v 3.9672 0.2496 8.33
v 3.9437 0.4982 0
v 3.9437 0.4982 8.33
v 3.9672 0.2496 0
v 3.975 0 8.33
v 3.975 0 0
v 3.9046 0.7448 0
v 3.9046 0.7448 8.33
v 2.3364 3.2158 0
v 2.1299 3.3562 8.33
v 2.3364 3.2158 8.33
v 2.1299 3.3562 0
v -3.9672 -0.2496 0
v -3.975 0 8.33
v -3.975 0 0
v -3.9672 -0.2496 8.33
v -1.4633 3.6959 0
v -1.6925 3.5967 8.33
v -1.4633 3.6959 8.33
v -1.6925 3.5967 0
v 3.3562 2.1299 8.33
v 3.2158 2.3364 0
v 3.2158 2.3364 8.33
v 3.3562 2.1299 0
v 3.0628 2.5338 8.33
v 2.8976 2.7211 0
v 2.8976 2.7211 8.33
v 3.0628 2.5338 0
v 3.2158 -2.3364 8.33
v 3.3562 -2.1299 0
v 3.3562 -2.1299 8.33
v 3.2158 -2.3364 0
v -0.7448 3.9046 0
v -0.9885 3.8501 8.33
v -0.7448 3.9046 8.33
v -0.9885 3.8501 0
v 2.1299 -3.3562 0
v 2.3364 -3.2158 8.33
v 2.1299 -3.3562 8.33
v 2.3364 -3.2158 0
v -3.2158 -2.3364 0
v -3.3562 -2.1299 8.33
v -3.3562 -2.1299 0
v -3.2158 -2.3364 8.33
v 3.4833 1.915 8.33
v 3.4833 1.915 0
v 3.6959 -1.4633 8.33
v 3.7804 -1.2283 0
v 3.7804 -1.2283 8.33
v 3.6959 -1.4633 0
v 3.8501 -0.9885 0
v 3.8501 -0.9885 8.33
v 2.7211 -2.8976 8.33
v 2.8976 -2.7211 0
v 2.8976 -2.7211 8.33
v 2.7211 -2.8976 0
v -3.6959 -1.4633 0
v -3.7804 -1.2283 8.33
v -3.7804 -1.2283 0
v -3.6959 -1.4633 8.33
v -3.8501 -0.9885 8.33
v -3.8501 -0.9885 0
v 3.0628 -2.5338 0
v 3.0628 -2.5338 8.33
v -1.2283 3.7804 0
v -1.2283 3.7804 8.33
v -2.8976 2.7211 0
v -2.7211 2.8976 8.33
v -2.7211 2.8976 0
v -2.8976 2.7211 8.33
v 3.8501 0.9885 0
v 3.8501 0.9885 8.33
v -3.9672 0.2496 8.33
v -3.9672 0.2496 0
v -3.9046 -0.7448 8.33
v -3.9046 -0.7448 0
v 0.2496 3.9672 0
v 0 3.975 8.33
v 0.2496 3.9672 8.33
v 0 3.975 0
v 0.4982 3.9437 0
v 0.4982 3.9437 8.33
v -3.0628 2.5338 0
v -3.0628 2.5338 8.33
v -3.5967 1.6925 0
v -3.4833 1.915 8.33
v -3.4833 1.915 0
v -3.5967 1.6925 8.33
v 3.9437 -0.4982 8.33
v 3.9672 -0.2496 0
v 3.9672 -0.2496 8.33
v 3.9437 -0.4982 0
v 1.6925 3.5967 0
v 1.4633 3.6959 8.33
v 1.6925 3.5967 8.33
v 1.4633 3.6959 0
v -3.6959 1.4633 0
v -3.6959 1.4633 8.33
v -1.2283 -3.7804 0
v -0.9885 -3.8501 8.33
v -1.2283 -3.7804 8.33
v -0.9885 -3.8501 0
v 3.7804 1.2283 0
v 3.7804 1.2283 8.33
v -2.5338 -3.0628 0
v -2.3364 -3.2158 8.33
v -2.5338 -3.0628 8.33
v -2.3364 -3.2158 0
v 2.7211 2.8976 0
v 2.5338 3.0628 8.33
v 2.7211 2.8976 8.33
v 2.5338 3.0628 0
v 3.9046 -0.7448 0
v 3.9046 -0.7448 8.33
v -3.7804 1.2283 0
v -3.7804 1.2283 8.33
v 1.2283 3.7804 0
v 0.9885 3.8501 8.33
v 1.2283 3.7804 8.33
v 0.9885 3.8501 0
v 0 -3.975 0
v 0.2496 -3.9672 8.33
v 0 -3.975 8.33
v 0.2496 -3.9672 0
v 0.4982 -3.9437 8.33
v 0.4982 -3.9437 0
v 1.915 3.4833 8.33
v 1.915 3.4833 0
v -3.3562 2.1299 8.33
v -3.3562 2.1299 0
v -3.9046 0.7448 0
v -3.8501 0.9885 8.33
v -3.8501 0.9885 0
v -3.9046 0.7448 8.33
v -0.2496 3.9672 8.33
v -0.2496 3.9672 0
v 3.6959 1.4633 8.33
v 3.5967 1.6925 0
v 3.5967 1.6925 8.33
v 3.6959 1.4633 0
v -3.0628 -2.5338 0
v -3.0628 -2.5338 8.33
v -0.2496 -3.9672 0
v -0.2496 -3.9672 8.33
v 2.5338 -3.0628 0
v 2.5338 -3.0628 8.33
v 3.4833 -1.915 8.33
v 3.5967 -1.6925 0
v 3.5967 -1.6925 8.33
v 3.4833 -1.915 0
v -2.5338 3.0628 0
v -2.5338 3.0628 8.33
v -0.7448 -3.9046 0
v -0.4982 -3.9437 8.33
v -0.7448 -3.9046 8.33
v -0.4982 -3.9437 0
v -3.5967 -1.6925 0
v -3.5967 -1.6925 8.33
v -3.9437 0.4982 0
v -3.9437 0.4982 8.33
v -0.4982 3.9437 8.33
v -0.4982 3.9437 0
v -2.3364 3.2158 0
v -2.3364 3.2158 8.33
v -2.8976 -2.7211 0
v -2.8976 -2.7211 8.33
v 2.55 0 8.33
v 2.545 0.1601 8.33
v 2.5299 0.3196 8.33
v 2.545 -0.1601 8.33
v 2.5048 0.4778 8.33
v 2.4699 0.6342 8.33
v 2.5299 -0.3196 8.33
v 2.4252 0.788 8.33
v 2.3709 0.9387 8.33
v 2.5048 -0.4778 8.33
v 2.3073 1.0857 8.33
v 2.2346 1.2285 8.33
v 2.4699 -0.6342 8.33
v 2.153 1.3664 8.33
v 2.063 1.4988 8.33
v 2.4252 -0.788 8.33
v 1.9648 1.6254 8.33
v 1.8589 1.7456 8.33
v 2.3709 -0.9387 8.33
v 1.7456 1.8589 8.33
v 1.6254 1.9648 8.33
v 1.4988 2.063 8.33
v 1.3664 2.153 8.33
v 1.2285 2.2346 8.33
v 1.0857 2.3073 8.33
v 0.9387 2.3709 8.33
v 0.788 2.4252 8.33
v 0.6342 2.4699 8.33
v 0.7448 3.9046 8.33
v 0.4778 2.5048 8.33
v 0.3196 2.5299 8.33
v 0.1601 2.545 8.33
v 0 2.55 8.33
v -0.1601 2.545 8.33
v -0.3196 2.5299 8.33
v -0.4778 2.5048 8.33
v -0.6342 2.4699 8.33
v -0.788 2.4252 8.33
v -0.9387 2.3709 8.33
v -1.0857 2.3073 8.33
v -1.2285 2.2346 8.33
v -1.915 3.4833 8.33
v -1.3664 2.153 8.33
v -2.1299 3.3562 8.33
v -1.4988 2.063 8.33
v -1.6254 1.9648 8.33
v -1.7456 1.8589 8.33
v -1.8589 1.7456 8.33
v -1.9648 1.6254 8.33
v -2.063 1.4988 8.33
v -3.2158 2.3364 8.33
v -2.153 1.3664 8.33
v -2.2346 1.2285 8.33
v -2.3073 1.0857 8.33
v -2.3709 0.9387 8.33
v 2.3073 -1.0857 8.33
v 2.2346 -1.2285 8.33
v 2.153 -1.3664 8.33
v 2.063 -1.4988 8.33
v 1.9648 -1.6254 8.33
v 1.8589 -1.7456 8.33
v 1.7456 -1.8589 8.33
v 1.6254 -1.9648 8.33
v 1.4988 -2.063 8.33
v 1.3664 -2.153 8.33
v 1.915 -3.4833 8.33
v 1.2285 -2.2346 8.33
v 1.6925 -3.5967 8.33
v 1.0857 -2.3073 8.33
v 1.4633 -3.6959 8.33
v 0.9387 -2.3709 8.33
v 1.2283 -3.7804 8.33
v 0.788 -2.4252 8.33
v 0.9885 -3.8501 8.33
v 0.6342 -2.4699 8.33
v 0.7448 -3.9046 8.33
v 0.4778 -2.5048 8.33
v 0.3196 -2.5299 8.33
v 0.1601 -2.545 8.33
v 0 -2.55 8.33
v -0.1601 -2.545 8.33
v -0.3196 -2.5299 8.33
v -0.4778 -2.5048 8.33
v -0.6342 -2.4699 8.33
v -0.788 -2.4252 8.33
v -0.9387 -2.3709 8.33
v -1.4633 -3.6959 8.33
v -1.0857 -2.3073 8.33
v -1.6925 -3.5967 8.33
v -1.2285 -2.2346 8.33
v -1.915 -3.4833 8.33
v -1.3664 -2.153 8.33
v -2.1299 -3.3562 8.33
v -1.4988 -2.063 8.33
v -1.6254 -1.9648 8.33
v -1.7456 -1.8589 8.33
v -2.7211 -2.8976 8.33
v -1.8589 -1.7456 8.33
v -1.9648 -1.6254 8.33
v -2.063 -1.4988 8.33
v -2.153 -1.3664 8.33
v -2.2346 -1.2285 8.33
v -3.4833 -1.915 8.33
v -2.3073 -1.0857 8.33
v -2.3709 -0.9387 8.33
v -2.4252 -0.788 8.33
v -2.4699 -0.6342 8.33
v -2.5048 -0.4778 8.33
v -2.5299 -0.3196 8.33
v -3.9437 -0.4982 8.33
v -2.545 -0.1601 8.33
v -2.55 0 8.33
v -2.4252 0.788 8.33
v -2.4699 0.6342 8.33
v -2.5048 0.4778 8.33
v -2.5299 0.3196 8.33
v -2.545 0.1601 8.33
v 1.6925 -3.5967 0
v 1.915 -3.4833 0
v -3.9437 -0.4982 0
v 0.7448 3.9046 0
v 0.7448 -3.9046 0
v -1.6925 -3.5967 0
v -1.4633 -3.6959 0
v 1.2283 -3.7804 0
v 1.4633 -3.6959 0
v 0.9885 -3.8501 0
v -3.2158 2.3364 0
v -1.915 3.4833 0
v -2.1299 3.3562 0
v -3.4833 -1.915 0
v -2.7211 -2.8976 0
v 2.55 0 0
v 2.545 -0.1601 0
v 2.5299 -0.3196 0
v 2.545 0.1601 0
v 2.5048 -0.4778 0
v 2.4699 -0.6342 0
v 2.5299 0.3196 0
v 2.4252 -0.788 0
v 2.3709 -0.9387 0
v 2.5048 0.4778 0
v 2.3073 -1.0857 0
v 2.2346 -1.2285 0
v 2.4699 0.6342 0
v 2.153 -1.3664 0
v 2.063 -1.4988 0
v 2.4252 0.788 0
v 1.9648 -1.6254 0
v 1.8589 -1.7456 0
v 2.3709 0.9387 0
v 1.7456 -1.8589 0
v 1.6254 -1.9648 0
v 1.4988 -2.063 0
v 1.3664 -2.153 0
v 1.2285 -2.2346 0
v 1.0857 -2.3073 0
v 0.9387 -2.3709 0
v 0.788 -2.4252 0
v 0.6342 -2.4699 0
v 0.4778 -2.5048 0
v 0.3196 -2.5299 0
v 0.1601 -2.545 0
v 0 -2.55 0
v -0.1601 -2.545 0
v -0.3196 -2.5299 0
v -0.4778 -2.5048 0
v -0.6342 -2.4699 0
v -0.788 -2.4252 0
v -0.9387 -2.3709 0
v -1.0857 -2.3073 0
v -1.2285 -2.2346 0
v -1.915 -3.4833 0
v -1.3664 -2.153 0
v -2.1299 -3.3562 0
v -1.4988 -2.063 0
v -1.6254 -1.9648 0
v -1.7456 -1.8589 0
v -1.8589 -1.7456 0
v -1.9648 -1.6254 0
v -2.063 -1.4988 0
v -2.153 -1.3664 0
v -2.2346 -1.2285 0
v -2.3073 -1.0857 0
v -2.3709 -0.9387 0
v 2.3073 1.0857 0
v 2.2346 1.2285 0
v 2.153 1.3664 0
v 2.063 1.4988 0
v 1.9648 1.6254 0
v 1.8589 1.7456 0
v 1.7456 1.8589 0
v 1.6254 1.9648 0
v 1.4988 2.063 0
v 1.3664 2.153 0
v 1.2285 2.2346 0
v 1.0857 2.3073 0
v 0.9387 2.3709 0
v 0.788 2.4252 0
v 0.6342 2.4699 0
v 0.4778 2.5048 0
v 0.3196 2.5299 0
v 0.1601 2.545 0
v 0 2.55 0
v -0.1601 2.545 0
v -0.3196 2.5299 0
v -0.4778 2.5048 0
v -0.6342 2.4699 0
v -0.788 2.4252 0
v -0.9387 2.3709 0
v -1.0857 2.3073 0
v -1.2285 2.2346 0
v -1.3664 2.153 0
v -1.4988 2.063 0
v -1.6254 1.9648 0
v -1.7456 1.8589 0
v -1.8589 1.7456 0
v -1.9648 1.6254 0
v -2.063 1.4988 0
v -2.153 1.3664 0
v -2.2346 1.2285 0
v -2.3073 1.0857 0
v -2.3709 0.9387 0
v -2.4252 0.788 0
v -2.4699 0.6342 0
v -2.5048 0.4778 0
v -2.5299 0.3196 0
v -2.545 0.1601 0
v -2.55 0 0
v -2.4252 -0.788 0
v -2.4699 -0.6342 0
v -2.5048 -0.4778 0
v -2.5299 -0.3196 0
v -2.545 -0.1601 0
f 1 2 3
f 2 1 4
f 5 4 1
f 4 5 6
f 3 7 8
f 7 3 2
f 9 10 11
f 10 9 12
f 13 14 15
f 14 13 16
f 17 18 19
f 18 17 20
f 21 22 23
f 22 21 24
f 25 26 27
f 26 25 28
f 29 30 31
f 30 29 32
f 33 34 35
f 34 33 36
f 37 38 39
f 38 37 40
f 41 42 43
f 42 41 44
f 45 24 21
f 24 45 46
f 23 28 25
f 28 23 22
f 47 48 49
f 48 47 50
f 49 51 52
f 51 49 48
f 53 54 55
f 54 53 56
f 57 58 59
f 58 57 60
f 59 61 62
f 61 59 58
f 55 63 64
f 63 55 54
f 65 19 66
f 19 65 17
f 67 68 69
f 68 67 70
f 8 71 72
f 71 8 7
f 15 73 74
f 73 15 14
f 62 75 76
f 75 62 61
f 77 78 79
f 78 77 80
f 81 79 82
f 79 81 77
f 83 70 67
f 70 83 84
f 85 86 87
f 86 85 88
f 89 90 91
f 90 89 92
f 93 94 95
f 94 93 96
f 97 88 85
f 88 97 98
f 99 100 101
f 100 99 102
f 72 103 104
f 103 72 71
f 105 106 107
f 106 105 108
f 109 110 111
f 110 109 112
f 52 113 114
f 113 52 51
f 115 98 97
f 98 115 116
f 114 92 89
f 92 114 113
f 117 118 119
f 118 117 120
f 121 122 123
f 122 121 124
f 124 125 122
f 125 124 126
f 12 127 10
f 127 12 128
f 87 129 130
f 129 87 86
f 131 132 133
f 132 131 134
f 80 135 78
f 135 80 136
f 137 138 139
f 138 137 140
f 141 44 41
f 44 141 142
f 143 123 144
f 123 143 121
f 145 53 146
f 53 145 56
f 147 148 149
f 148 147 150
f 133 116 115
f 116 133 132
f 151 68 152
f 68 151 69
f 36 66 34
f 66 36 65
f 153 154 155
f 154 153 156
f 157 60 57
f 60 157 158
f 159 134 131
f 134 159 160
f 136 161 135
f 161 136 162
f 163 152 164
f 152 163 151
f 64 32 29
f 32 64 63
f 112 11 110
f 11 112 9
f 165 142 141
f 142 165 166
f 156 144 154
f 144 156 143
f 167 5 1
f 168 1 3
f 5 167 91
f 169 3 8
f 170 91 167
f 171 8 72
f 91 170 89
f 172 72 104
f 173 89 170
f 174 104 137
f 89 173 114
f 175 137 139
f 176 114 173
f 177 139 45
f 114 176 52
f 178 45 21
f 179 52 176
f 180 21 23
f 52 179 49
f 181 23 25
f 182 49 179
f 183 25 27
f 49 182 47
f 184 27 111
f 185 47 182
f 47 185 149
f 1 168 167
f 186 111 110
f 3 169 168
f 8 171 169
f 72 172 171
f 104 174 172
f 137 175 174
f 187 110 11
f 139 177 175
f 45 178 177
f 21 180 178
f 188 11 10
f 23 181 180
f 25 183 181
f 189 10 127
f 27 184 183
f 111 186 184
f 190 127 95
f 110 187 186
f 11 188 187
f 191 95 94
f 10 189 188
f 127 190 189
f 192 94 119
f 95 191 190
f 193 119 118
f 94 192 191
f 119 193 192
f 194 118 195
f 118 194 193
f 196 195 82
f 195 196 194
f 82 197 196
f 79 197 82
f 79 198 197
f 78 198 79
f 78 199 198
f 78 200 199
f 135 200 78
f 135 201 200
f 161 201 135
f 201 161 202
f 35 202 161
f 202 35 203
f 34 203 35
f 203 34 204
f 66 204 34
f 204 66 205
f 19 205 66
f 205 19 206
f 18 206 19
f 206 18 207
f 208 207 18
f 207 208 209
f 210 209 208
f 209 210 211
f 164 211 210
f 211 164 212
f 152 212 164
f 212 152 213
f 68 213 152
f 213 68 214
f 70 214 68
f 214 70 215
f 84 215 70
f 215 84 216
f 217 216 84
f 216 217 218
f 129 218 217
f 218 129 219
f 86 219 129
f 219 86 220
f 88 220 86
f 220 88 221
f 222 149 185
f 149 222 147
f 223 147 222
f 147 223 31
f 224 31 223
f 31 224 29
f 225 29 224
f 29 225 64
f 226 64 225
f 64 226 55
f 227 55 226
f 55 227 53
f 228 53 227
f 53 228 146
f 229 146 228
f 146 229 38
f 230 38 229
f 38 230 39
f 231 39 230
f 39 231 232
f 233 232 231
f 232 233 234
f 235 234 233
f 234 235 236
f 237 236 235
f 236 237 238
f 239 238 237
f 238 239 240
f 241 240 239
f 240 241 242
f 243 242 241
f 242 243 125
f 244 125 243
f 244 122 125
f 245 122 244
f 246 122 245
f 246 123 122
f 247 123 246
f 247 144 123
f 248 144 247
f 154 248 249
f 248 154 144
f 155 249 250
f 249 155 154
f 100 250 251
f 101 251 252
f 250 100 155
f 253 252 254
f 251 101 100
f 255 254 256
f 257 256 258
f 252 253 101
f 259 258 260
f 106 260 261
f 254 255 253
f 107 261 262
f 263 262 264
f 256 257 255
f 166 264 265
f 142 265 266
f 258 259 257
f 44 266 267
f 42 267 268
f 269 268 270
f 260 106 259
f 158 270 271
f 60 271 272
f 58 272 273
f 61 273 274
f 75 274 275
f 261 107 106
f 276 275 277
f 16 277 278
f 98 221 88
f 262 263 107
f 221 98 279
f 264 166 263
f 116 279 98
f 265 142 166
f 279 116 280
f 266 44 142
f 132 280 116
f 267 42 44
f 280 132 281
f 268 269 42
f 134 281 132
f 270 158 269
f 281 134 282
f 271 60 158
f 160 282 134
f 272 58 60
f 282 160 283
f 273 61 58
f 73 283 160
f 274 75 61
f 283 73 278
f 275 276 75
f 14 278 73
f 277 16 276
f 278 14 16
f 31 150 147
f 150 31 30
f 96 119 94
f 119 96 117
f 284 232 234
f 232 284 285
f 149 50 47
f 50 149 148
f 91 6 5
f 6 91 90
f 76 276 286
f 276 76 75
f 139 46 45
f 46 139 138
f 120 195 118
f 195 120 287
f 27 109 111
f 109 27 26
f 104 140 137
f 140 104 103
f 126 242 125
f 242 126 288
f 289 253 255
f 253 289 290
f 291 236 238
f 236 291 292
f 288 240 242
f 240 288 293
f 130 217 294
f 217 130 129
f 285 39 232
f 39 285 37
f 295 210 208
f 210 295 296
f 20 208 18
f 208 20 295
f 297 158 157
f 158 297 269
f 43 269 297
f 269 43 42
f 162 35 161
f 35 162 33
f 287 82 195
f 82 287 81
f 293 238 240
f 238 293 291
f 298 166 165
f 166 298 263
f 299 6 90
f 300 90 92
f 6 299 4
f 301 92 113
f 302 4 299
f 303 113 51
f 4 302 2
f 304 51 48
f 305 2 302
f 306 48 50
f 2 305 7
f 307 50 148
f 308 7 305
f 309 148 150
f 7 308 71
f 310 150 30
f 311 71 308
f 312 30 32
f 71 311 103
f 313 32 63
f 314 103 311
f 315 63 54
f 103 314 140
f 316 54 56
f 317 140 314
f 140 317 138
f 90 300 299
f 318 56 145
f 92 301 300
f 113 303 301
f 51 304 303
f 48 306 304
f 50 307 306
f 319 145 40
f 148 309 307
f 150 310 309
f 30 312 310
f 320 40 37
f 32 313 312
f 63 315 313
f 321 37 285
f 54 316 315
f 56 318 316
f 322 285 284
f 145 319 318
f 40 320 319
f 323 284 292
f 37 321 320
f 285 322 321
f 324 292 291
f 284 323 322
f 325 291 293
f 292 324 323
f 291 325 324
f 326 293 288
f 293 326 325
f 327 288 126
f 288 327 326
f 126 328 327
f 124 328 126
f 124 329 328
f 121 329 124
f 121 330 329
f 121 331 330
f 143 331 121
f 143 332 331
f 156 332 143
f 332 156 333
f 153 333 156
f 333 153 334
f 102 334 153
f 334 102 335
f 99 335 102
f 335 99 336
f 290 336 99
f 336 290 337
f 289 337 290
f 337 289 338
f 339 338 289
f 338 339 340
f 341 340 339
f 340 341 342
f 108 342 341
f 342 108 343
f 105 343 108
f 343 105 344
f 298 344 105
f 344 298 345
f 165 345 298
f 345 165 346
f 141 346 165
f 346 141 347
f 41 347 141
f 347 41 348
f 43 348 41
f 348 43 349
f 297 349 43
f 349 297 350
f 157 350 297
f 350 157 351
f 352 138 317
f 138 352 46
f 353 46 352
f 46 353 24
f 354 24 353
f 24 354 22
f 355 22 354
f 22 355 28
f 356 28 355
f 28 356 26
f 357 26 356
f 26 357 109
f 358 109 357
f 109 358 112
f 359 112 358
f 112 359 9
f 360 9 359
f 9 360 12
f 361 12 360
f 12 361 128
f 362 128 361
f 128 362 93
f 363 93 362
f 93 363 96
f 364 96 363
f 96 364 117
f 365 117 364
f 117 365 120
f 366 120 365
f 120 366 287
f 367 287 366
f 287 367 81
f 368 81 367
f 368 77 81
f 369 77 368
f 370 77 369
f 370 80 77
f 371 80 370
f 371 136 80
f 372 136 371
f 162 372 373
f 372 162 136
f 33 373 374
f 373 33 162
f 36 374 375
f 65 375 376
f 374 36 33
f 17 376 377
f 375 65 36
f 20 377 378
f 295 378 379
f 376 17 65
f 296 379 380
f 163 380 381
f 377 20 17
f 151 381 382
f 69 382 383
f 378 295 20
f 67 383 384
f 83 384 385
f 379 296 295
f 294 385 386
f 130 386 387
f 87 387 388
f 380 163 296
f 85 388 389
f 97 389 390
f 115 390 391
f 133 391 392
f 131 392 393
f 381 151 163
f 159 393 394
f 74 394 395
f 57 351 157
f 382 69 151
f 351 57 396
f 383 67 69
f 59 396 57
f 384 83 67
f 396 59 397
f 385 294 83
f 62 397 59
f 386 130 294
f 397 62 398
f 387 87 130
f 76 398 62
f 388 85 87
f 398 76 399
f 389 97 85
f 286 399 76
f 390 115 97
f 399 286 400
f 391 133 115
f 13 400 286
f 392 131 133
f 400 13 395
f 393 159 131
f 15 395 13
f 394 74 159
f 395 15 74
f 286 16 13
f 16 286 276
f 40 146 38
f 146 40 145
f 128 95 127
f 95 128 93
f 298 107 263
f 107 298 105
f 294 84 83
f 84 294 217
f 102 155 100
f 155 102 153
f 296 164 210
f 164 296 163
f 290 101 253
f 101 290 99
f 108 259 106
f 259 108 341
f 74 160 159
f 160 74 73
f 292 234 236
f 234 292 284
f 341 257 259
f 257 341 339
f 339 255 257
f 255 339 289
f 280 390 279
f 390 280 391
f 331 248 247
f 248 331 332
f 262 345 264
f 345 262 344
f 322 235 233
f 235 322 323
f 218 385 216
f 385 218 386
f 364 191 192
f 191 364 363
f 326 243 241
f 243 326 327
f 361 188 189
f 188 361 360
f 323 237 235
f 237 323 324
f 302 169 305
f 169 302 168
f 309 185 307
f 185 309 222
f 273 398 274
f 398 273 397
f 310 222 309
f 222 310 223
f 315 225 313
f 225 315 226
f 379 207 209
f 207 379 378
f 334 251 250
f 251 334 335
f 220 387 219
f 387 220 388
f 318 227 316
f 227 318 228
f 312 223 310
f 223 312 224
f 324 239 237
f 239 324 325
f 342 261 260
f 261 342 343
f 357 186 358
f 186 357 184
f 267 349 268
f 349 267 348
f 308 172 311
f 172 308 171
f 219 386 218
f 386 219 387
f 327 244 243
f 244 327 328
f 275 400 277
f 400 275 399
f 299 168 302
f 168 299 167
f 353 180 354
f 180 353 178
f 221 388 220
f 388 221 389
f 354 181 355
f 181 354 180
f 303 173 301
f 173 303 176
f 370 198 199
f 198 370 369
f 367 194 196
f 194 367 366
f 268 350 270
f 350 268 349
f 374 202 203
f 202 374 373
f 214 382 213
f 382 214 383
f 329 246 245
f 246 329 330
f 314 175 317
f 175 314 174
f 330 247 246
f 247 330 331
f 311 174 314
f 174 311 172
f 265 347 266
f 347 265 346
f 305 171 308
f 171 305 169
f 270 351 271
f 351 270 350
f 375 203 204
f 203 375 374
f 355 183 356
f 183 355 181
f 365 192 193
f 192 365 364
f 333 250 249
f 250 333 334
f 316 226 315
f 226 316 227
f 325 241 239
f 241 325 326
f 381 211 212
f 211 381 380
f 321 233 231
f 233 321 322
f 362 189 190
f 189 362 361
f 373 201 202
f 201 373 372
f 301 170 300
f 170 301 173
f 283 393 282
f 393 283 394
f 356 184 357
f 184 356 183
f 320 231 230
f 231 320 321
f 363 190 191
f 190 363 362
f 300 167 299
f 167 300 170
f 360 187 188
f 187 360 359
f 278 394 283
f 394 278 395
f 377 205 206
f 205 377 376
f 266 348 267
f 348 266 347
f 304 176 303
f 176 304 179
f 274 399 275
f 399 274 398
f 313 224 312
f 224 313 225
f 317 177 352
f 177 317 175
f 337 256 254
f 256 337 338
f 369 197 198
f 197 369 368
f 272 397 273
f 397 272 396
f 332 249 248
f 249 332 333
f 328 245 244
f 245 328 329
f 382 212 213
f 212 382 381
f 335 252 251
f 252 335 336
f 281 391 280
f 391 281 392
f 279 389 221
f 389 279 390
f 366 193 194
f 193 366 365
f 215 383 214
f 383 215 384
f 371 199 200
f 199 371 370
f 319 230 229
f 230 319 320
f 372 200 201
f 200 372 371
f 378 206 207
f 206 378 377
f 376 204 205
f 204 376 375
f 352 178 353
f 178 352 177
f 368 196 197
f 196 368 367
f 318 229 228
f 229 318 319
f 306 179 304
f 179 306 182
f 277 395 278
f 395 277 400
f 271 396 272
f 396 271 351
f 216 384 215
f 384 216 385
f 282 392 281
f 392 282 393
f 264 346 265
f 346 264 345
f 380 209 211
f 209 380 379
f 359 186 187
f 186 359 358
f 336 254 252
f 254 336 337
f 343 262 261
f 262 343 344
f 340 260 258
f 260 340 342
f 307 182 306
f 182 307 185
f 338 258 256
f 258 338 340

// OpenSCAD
// Spacer Model Parameters
length = 8.33;      // Length of spacer in mm
outer_d = 7.95;     // Outer diameter in mm
inner_d = 5.10;     // Inner diameter in mm
smoothness = 100;   // High smoothness factor for cylinder faces

// Main spacer body
difference() {
  // Outer cylinder
  cylinder(
    h = length,
    d = outer_d,
    $fn = smoothness
  );

  // Inner hole (subtracted from outer cylinder)
  cylinder(
    h = length,
    d = inner_d,
    $fn = smoothness
  );
}
